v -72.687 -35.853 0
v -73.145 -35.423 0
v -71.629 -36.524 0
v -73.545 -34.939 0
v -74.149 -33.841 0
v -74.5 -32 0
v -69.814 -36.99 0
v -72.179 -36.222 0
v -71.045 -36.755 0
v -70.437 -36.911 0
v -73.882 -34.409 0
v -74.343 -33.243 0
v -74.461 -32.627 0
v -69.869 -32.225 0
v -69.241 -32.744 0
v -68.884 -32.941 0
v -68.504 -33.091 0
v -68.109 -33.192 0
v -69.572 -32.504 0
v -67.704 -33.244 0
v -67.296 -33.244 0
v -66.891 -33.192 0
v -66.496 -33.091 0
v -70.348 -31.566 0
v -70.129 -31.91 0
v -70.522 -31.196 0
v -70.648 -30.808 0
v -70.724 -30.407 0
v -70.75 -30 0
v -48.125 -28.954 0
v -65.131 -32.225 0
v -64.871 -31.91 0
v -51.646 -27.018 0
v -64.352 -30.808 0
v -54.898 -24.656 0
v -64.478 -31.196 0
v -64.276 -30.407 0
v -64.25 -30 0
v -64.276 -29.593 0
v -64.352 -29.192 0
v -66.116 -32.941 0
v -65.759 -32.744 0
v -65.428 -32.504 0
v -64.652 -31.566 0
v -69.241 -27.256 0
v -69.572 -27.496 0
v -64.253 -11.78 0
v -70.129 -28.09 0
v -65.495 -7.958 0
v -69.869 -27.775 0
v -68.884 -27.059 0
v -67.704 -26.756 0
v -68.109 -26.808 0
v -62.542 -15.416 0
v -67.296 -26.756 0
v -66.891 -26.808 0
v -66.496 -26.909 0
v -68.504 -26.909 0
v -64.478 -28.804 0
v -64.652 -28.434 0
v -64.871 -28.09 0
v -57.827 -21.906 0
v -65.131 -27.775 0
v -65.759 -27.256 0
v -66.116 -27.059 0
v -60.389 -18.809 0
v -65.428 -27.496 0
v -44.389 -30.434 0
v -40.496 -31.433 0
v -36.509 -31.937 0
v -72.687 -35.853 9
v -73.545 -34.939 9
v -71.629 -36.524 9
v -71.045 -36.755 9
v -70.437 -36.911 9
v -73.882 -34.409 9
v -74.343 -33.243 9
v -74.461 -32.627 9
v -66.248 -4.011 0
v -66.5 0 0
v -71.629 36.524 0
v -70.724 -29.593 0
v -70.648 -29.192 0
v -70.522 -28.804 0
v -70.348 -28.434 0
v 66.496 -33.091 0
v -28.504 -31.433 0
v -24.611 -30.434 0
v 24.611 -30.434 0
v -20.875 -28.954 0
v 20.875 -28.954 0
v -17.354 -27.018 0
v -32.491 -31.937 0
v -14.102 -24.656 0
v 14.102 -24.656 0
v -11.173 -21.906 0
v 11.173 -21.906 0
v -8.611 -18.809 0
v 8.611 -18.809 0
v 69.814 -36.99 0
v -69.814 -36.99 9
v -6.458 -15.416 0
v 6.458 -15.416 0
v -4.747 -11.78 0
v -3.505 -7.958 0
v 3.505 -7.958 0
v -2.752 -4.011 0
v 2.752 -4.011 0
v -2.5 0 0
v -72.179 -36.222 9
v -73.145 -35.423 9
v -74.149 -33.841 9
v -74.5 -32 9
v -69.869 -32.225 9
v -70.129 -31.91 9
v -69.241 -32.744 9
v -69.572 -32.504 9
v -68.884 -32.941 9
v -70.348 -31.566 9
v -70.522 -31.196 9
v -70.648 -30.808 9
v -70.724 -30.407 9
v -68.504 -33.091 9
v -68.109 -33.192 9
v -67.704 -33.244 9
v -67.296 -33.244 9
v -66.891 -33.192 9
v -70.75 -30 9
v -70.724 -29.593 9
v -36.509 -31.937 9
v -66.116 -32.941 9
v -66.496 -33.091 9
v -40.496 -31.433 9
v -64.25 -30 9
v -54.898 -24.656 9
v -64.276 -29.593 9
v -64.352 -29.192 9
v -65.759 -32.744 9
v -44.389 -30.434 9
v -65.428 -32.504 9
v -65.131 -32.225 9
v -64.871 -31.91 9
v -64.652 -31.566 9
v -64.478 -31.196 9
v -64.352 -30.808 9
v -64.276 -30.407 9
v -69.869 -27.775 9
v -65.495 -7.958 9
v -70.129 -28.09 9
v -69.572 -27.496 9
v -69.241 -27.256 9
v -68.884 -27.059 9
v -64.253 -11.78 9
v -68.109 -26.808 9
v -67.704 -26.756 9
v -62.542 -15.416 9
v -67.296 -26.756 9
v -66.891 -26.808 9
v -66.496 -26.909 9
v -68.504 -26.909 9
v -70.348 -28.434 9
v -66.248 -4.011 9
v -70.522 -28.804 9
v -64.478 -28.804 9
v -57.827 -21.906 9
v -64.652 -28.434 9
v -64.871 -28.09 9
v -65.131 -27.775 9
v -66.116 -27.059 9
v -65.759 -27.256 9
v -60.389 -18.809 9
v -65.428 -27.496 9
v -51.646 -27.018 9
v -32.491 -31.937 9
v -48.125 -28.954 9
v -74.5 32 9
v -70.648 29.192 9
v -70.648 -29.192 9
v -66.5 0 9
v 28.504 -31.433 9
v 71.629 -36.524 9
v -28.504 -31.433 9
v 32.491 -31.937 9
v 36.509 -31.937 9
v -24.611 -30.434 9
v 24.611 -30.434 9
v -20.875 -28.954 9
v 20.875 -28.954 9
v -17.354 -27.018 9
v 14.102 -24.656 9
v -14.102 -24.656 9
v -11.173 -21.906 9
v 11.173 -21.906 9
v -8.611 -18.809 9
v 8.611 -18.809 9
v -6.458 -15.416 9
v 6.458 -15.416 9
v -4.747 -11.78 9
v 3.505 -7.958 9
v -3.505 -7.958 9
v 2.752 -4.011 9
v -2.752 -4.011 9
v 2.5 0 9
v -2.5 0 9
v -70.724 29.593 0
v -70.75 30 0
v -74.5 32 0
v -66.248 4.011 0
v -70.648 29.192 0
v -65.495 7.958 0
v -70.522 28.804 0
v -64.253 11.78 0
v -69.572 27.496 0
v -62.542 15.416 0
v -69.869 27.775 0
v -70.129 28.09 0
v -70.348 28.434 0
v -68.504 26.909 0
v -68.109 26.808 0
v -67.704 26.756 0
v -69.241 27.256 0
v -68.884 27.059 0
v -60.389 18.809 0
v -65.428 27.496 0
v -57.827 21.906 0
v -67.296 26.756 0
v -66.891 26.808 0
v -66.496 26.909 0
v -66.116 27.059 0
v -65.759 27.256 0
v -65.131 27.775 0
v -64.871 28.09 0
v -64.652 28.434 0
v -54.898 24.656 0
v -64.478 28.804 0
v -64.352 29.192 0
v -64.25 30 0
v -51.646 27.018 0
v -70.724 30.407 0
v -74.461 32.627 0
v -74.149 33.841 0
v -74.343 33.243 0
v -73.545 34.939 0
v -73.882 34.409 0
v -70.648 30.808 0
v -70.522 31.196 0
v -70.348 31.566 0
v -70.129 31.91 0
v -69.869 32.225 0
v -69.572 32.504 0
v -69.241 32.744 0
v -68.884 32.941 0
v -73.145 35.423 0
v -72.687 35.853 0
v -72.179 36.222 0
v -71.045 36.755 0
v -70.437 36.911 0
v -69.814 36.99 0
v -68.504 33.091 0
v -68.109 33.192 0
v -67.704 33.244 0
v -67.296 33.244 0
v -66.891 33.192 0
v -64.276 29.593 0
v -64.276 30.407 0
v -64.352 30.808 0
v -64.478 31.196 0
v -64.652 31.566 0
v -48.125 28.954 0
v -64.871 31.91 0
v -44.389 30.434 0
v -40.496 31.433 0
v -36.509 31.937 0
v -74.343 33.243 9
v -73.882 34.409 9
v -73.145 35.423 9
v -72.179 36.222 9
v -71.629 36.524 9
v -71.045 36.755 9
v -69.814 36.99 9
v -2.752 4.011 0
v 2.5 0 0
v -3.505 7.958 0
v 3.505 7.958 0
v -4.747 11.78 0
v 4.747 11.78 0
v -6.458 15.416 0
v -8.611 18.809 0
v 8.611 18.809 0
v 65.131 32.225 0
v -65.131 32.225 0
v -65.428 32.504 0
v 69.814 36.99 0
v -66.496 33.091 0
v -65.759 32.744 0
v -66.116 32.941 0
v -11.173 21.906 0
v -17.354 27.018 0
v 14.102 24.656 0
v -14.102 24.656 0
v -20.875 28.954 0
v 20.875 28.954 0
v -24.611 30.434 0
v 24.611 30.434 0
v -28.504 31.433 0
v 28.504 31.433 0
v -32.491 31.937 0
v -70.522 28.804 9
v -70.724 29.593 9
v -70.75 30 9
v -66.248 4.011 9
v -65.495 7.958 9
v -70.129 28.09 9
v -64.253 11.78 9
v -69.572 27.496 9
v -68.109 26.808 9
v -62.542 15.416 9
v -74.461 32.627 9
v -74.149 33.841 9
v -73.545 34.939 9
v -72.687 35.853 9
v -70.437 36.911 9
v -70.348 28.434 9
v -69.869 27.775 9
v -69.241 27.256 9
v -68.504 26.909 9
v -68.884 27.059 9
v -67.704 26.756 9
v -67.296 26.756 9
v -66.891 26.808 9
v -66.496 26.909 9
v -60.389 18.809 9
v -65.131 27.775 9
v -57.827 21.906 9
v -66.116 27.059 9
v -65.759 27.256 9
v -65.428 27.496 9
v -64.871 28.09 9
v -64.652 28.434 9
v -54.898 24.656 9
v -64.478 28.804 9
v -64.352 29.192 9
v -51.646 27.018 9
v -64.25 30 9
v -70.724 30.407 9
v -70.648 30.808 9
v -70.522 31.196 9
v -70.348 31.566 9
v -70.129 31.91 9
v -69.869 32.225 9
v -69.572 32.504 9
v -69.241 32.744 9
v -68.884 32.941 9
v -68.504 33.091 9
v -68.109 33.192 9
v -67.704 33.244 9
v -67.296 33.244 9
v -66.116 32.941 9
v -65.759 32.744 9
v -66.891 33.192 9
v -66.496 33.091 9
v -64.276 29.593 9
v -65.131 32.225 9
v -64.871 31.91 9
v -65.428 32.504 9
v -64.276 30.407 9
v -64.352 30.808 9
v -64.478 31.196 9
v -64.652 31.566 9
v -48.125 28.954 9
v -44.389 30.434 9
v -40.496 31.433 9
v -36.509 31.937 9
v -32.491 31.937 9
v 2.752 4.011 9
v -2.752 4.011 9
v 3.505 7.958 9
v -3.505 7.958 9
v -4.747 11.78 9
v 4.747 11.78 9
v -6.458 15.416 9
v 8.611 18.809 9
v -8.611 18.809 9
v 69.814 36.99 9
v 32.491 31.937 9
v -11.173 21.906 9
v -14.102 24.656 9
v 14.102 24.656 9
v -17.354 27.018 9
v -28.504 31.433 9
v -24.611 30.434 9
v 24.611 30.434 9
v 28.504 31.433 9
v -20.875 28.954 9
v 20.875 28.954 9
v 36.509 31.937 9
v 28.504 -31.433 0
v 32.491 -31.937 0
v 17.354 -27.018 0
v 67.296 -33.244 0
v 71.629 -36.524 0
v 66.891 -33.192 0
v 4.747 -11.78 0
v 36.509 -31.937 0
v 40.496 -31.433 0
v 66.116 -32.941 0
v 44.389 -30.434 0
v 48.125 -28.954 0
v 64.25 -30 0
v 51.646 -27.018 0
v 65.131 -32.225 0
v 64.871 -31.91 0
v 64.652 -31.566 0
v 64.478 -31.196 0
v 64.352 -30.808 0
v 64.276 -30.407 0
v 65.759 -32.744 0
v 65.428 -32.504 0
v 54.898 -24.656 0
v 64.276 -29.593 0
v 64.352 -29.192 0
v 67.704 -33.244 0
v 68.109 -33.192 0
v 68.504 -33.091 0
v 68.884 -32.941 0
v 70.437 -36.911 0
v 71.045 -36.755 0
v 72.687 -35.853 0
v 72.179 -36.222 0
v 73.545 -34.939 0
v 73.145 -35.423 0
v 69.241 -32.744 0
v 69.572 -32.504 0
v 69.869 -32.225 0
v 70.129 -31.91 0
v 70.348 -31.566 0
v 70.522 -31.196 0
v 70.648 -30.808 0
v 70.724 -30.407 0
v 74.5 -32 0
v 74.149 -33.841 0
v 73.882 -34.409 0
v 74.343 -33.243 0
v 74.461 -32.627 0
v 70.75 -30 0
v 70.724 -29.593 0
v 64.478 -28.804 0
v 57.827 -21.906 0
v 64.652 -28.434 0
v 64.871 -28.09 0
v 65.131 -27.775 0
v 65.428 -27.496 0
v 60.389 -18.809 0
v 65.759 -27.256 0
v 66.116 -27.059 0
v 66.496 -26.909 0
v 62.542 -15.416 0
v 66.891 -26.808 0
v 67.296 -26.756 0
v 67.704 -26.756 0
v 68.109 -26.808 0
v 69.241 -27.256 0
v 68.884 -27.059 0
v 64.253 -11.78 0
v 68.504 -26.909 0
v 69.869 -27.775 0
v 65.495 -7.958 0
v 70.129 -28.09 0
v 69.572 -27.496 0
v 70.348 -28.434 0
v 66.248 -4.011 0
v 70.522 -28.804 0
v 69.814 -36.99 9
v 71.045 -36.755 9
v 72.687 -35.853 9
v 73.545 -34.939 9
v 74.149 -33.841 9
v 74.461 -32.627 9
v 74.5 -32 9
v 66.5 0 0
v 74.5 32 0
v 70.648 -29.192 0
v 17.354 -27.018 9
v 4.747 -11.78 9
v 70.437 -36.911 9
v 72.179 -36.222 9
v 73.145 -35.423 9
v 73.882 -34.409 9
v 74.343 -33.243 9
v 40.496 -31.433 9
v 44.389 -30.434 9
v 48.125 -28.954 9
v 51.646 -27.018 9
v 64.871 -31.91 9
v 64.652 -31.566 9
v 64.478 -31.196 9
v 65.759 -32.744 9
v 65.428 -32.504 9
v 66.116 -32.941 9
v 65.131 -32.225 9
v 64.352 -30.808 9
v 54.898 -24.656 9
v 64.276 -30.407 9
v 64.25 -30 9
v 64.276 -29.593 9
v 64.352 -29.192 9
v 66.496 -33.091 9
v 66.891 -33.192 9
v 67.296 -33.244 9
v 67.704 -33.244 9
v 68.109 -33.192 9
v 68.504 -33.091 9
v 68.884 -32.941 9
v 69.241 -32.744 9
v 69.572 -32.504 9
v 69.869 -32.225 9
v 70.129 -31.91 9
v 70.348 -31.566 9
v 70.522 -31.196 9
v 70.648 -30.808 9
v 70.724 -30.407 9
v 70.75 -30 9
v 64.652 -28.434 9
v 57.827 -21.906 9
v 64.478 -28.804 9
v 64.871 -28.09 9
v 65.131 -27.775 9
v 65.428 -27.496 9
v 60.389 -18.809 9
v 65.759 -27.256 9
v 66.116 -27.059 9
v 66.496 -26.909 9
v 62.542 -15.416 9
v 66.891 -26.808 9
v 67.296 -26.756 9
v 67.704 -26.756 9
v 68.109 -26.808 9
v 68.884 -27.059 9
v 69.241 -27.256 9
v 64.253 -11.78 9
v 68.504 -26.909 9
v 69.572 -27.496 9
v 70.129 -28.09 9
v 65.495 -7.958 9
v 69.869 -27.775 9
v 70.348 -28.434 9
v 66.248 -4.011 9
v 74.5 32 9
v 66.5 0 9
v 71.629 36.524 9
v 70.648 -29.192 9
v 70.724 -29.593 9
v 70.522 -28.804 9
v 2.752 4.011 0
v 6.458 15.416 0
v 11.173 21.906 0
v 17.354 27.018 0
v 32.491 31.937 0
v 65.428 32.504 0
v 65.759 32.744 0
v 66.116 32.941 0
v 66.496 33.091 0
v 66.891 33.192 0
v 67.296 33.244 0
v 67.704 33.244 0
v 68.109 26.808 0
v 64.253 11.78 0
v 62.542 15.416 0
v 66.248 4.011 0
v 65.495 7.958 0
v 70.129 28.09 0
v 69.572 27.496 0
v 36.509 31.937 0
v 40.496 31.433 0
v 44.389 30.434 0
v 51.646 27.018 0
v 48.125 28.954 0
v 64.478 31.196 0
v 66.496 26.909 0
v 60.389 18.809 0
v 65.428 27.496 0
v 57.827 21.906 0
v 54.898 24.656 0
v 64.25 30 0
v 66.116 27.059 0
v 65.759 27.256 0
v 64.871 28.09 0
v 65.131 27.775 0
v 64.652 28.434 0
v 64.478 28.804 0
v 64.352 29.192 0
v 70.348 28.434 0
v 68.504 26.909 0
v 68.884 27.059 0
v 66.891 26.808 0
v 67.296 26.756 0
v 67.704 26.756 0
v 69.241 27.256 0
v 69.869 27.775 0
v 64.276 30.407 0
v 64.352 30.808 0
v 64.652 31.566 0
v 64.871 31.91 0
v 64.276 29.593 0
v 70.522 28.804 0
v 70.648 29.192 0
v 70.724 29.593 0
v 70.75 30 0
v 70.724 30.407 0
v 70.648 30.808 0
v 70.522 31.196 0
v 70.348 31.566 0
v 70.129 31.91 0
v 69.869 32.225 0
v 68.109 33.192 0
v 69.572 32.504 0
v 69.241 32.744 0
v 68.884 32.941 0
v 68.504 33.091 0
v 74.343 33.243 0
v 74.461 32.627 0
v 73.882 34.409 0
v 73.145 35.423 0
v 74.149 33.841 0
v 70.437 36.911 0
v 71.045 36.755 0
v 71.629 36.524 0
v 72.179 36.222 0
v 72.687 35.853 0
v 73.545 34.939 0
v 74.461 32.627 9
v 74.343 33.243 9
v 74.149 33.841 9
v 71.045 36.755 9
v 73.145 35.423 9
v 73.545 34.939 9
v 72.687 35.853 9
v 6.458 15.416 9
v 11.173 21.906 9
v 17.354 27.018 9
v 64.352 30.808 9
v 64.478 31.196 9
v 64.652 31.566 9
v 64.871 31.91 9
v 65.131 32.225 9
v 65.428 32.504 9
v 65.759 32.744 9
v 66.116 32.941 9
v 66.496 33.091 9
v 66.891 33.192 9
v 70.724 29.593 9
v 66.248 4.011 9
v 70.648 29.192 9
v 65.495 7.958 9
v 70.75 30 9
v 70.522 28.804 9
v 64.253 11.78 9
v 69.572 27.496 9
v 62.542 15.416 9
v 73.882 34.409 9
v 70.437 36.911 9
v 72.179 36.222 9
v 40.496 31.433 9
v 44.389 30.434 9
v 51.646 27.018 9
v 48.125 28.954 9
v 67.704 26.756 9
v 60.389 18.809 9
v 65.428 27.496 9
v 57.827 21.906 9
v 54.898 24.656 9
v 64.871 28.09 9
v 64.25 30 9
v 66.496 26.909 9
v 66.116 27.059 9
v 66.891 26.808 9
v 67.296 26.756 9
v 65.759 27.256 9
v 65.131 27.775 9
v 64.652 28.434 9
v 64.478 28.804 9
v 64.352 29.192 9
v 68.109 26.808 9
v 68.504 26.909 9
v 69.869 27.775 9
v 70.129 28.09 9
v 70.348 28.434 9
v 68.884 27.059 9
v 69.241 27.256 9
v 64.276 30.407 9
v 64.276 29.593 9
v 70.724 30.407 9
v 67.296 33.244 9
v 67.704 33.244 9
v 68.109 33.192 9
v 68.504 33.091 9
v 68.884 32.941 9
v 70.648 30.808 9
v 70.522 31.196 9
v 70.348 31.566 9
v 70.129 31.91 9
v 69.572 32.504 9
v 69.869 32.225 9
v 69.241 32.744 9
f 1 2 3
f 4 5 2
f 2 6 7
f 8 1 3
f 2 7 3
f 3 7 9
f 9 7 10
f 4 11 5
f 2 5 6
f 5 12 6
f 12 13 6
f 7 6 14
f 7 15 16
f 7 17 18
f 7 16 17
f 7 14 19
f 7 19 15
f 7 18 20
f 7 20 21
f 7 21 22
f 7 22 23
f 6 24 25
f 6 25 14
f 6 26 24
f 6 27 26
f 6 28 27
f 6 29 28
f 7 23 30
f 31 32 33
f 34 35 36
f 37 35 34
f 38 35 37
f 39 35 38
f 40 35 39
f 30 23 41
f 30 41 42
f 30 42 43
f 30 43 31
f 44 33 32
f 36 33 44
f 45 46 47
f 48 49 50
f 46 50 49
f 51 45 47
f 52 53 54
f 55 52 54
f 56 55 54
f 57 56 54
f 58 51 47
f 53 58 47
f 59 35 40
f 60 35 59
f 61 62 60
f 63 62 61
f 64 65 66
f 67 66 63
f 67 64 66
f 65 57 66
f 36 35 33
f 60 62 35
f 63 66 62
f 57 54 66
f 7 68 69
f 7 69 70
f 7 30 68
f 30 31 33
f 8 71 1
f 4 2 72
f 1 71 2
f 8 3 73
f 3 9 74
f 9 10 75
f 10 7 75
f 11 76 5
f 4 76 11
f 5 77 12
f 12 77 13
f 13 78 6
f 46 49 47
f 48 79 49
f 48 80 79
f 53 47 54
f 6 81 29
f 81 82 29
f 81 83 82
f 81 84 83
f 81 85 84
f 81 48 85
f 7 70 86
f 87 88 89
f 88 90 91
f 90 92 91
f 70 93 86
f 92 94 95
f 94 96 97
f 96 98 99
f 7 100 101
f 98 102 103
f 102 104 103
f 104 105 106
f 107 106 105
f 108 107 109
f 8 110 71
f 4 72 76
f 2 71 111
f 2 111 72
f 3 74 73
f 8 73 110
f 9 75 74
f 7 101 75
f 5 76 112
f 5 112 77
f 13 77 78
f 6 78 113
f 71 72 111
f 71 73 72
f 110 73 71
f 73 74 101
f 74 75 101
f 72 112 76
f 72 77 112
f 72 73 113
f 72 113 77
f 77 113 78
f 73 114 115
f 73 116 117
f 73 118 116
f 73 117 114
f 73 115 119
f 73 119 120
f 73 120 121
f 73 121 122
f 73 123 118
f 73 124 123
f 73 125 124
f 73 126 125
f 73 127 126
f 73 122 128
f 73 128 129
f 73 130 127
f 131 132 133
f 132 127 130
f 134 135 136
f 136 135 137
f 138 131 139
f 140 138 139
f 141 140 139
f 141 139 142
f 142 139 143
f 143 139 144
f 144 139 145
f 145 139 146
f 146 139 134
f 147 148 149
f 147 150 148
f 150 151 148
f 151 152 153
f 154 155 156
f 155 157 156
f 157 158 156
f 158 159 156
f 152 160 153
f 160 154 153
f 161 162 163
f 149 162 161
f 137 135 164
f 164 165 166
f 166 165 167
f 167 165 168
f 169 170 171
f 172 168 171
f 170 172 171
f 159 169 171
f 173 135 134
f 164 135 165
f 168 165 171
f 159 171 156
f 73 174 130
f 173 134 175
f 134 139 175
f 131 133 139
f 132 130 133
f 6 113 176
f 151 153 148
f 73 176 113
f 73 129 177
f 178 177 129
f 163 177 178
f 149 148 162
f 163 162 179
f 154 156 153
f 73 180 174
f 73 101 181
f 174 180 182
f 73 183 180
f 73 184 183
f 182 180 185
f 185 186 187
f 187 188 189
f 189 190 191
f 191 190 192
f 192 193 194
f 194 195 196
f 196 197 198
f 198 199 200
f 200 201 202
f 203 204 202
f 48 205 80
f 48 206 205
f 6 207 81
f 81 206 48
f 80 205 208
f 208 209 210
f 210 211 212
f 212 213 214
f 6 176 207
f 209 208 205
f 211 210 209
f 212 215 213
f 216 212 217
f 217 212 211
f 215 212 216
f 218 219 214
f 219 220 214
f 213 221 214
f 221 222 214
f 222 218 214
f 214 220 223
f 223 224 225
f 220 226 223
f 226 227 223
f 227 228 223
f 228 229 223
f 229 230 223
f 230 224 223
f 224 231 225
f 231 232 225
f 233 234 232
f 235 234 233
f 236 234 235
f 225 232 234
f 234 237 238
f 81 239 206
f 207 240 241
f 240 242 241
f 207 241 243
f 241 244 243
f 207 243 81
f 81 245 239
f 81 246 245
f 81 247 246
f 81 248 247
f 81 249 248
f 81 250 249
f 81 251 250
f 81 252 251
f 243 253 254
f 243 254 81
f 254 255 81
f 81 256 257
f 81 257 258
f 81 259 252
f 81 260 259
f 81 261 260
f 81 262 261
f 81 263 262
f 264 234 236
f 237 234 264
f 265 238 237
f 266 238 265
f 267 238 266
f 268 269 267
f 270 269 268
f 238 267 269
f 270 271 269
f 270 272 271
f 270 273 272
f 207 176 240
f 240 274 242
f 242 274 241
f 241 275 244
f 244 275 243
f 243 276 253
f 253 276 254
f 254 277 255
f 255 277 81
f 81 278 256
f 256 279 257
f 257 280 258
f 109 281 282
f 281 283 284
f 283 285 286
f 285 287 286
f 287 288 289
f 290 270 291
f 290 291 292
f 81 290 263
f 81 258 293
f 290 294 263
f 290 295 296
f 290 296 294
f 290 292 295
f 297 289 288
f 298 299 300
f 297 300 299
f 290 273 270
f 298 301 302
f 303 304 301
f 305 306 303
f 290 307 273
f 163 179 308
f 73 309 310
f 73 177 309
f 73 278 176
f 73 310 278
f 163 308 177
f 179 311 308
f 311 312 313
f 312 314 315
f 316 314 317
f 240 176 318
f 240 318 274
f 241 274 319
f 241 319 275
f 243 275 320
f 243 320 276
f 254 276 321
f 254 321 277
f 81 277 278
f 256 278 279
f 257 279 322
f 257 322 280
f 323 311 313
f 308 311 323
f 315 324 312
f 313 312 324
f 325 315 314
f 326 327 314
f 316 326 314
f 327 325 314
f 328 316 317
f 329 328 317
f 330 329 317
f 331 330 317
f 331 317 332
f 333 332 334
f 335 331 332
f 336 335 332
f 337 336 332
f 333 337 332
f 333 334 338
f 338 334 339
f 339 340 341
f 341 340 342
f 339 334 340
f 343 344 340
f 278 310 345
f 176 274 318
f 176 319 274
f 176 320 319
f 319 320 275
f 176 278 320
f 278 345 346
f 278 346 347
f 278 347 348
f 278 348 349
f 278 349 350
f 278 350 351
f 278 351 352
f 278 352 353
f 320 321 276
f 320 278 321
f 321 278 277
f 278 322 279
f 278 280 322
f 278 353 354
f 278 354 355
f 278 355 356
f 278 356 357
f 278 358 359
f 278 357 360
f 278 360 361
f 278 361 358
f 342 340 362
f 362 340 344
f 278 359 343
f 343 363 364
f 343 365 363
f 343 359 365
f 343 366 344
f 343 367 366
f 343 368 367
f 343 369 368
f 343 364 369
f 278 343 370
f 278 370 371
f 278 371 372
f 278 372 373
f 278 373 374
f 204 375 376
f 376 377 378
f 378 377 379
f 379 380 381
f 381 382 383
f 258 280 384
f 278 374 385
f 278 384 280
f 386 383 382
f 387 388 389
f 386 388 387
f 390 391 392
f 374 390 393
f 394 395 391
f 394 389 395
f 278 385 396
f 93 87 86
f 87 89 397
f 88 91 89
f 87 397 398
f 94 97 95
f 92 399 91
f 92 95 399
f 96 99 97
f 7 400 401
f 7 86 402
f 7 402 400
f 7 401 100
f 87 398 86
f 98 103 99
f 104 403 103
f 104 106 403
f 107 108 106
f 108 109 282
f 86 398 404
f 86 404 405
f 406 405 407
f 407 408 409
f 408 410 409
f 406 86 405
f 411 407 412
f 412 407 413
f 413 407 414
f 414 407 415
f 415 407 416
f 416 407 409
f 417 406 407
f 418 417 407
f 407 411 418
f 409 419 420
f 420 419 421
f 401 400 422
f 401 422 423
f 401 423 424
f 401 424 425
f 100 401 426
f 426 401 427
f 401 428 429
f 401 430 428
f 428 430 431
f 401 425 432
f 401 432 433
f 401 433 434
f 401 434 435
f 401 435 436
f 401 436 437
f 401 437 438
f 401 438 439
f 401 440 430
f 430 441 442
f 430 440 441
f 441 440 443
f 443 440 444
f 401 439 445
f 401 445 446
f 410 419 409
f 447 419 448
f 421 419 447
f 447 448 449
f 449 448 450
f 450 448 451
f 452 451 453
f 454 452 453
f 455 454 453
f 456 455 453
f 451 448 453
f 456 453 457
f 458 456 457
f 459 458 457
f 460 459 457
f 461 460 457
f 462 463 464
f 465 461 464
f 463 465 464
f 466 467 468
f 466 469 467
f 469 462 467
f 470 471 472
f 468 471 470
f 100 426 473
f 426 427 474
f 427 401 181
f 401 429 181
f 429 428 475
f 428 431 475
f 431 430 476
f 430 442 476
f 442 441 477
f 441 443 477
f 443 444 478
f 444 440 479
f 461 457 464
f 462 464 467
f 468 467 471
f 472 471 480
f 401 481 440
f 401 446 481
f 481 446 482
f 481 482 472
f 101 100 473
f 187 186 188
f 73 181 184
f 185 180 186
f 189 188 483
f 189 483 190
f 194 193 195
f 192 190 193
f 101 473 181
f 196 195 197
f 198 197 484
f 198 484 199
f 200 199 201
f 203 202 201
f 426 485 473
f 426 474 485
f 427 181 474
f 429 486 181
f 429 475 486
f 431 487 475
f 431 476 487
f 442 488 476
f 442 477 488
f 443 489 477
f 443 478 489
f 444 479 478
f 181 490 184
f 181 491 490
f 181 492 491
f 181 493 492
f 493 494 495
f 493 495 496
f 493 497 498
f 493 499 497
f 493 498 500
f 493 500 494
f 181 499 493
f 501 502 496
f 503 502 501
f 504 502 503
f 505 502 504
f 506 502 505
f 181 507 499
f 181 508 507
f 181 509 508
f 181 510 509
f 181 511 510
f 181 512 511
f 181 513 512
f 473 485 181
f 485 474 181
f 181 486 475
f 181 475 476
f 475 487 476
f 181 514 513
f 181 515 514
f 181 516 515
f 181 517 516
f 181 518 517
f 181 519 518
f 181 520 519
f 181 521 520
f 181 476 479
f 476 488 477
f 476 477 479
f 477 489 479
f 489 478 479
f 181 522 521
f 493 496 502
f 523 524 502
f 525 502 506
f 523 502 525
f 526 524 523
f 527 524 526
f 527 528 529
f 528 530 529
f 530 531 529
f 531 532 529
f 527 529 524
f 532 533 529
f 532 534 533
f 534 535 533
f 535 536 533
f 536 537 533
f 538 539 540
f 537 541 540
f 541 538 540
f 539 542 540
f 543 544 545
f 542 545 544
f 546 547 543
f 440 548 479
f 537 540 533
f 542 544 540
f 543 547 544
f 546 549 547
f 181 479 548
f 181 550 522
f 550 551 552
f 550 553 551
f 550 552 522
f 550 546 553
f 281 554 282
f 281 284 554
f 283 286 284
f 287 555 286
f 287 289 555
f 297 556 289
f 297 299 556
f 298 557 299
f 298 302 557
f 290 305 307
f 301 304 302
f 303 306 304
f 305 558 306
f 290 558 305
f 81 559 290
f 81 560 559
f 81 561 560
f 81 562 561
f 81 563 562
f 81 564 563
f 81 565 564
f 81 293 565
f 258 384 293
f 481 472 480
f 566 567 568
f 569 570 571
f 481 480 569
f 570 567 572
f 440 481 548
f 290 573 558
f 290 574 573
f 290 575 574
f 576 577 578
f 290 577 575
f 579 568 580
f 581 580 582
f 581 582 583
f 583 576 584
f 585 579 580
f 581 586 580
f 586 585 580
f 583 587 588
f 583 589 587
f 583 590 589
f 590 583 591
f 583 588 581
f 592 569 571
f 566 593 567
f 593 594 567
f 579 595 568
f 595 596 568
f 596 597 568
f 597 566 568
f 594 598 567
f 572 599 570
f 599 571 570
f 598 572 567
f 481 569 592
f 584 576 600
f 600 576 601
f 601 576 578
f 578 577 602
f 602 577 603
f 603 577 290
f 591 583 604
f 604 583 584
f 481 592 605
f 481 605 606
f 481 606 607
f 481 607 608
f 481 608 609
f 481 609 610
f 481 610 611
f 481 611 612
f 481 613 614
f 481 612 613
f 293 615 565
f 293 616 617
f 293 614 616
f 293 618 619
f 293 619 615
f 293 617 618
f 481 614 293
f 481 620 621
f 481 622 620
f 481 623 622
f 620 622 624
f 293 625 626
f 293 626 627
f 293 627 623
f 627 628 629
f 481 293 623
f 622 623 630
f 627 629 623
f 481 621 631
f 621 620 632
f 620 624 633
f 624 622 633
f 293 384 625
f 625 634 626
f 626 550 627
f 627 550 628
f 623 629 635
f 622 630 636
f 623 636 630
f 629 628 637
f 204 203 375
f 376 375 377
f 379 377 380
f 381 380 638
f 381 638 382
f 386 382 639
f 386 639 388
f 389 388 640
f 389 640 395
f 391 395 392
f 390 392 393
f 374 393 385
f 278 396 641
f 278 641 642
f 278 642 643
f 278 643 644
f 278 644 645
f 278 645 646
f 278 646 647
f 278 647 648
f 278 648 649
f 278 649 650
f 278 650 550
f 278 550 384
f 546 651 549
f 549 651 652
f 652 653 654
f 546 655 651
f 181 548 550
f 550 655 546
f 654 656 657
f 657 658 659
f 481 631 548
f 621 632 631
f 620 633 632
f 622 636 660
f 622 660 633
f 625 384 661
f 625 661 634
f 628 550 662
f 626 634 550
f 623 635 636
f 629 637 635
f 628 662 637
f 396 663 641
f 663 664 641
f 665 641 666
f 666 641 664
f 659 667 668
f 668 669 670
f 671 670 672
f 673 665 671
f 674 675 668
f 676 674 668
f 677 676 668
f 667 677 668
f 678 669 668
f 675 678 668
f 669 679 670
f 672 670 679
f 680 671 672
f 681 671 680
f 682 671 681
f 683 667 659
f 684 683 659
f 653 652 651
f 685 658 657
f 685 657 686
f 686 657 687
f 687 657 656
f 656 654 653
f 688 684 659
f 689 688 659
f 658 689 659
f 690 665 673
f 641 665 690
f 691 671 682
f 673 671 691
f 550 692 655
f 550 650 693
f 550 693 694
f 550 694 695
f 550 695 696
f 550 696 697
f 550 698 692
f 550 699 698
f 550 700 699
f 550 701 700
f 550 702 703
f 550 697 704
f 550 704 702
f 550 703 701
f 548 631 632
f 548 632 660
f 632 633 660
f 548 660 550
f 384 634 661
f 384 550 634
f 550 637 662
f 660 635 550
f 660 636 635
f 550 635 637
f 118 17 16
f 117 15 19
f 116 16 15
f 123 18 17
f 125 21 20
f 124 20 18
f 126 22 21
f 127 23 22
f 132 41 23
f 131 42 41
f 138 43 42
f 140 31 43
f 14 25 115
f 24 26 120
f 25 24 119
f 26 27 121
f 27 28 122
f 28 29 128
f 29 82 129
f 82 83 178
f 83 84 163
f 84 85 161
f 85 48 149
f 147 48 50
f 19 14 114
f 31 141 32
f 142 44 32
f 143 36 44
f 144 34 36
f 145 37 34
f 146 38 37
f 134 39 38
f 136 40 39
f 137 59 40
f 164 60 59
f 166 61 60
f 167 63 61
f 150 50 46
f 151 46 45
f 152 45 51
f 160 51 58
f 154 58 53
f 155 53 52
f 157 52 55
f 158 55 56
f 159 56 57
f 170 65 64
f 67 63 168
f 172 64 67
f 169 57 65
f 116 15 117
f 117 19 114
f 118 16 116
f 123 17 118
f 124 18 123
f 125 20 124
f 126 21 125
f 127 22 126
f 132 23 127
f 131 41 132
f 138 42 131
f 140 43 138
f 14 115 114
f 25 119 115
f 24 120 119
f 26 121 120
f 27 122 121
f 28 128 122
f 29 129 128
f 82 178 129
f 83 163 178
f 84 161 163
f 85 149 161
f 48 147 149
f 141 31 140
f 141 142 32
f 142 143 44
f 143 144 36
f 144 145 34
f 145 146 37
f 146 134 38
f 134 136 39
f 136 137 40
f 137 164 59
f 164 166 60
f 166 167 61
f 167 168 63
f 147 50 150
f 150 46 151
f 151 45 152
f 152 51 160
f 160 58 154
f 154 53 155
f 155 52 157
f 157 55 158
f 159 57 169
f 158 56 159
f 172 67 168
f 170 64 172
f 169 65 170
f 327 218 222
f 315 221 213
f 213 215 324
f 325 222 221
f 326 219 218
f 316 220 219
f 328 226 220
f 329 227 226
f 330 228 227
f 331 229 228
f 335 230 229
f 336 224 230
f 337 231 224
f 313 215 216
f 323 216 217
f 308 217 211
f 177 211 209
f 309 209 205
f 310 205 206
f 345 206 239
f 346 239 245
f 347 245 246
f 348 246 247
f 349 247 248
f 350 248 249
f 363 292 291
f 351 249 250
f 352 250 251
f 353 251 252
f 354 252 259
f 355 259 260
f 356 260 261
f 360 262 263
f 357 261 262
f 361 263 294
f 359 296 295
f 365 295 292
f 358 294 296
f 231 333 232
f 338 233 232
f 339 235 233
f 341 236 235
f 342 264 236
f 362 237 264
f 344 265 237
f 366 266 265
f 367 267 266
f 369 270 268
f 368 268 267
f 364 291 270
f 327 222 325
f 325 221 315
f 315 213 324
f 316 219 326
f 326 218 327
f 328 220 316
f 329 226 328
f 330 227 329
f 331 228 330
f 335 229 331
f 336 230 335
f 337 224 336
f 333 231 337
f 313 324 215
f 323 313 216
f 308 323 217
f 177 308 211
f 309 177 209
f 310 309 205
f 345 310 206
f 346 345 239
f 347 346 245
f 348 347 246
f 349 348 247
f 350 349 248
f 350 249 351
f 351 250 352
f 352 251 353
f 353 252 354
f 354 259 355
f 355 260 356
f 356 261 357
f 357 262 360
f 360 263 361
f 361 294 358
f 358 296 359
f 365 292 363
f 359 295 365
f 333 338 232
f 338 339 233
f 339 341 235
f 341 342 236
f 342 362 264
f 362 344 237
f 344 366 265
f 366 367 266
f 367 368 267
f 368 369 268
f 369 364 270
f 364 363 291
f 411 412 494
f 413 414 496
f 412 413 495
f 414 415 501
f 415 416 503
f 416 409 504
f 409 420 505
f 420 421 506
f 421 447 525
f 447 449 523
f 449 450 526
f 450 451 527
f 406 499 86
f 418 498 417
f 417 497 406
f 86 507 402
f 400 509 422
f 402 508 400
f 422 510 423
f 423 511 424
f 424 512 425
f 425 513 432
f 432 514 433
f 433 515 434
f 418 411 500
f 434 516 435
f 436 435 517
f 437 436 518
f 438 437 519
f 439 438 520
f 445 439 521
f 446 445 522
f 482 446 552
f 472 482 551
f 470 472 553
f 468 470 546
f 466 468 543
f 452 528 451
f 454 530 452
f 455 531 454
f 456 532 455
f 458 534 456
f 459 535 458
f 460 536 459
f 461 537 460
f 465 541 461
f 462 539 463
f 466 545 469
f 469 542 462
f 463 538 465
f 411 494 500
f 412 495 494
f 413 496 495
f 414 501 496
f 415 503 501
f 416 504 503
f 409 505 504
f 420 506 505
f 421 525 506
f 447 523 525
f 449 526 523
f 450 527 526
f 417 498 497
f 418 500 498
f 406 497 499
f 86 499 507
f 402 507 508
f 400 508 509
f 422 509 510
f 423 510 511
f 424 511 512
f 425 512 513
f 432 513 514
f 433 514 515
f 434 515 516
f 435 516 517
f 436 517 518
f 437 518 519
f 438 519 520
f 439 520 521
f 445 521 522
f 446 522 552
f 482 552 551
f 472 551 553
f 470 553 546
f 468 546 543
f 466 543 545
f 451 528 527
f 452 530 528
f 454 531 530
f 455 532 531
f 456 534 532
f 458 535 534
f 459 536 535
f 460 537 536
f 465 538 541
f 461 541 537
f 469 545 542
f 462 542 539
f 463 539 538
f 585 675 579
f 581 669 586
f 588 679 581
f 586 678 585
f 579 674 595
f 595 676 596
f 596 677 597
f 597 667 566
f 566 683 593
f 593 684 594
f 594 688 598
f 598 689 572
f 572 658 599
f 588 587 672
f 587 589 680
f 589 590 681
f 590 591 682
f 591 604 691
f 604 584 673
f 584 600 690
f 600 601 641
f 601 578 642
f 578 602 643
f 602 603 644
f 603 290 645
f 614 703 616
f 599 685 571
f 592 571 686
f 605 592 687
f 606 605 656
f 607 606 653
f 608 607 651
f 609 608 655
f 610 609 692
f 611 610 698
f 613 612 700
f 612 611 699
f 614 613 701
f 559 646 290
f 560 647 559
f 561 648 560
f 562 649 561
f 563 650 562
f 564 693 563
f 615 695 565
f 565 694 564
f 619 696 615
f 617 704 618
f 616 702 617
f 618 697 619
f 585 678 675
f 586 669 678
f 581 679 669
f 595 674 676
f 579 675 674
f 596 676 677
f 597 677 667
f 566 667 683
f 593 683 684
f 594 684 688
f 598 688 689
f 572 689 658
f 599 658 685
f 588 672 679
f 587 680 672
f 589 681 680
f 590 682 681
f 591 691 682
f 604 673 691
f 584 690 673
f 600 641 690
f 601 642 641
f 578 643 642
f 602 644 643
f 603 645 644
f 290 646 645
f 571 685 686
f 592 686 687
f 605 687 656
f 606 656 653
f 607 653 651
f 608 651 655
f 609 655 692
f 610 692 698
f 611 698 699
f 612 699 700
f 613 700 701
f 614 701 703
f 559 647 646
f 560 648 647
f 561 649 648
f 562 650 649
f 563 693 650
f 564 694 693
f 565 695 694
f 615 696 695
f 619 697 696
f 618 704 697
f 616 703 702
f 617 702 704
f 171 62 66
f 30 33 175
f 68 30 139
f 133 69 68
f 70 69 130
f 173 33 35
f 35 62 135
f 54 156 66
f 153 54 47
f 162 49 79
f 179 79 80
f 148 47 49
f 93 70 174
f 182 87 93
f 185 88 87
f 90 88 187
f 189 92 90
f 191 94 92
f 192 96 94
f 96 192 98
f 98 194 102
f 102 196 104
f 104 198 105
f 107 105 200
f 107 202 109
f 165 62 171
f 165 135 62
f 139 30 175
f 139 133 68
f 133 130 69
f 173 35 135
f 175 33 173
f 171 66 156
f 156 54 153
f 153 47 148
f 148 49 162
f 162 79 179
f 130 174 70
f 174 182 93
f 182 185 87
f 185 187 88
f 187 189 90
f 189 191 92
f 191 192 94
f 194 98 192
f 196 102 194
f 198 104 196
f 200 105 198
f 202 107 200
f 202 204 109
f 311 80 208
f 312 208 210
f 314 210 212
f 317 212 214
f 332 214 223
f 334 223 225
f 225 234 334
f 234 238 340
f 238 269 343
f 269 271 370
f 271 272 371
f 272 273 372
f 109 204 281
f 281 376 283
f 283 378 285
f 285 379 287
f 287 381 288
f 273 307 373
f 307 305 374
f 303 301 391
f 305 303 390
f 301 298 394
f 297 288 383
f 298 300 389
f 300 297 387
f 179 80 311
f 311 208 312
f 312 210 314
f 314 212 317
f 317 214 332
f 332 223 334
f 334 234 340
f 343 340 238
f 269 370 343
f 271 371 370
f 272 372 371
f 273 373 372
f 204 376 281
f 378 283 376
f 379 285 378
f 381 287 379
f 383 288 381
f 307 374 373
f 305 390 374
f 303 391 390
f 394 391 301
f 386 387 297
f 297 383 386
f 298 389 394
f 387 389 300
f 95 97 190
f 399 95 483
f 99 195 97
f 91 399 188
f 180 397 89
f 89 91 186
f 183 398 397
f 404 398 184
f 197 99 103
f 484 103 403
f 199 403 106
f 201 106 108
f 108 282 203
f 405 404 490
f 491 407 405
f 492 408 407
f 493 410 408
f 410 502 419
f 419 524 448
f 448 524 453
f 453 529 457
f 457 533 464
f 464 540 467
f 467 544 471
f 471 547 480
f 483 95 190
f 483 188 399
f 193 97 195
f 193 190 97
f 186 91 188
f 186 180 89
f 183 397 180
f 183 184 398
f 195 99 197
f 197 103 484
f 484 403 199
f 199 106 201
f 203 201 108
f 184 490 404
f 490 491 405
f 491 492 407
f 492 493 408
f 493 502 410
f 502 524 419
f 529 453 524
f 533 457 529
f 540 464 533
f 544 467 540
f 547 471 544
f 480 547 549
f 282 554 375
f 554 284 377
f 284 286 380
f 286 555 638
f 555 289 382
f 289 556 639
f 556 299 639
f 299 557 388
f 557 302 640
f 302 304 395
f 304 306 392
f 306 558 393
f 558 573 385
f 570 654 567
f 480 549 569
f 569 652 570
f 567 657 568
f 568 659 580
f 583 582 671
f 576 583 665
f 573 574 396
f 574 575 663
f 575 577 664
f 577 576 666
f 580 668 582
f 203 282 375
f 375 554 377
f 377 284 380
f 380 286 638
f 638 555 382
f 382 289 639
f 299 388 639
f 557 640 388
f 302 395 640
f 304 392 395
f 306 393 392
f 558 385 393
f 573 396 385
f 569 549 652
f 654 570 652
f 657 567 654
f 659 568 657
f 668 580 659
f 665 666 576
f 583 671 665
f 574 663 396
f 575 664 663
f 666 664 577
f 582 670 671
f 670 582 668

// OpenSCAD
$fn = 50;

difference() {
	union() {
		hull() {
			translate(v = [-69.5, 32.0, 0]) {
				cylinder(h = 9, r = 5);
			}
			translate(v = [69.5, 32.0, 0]) {
				cylinder(h = 9, r = 5);
			}
			translate(v = [-69.5, -32.0, 0]) {
				cylinder(h = 9, r = 5);
			}
			translate(v = [69.5, -32.0, 0]) {
				cylinder(h = 9, r = 5);
			}
		}
	}
	union() {
		translate(v = [-67.5, -30.0, -100.0]) {
			cylinder(h = 200, r = 3.25);
		}
		translate(v = [-67.5, 30.0, -100.0]) {
			cylinder(h = 200, r = 3.25);
		}
		translate(v = [67.5, -30.0, -100.0]) {
			cylinder(h = 200, r = 3.25);
		}
		translate(v = [67.5, 30.0, -100.0]) {
			cylinder(h = 200, r = 3.25);
		}
		translate(v = [-67.5, -30.0, -100.0]) {
			cylinder(h = 200, r = 1.8);
		}
		translate(v = [-67.5, 30.0, -100.0]) {
			cylinder(h = 200, r = 1.8);
		}
		translate(v = [67.5, -30.0, -100.0]) {
			cylinder(h = 200, r = 1.8);
		}
		translate(v = [67.5, 30.0, -100.0]) {
			cylinder(h = 200, r = 1.8);
		}
		translate(v = [-34.5, 0, 0.0]) {
			cylinder(h = 9, r = 32.0);
		}
		translate(v = [34.5, 0, 0.0]) {
			cylinder(h = 9, r = 32.0);
		}
	}
}
